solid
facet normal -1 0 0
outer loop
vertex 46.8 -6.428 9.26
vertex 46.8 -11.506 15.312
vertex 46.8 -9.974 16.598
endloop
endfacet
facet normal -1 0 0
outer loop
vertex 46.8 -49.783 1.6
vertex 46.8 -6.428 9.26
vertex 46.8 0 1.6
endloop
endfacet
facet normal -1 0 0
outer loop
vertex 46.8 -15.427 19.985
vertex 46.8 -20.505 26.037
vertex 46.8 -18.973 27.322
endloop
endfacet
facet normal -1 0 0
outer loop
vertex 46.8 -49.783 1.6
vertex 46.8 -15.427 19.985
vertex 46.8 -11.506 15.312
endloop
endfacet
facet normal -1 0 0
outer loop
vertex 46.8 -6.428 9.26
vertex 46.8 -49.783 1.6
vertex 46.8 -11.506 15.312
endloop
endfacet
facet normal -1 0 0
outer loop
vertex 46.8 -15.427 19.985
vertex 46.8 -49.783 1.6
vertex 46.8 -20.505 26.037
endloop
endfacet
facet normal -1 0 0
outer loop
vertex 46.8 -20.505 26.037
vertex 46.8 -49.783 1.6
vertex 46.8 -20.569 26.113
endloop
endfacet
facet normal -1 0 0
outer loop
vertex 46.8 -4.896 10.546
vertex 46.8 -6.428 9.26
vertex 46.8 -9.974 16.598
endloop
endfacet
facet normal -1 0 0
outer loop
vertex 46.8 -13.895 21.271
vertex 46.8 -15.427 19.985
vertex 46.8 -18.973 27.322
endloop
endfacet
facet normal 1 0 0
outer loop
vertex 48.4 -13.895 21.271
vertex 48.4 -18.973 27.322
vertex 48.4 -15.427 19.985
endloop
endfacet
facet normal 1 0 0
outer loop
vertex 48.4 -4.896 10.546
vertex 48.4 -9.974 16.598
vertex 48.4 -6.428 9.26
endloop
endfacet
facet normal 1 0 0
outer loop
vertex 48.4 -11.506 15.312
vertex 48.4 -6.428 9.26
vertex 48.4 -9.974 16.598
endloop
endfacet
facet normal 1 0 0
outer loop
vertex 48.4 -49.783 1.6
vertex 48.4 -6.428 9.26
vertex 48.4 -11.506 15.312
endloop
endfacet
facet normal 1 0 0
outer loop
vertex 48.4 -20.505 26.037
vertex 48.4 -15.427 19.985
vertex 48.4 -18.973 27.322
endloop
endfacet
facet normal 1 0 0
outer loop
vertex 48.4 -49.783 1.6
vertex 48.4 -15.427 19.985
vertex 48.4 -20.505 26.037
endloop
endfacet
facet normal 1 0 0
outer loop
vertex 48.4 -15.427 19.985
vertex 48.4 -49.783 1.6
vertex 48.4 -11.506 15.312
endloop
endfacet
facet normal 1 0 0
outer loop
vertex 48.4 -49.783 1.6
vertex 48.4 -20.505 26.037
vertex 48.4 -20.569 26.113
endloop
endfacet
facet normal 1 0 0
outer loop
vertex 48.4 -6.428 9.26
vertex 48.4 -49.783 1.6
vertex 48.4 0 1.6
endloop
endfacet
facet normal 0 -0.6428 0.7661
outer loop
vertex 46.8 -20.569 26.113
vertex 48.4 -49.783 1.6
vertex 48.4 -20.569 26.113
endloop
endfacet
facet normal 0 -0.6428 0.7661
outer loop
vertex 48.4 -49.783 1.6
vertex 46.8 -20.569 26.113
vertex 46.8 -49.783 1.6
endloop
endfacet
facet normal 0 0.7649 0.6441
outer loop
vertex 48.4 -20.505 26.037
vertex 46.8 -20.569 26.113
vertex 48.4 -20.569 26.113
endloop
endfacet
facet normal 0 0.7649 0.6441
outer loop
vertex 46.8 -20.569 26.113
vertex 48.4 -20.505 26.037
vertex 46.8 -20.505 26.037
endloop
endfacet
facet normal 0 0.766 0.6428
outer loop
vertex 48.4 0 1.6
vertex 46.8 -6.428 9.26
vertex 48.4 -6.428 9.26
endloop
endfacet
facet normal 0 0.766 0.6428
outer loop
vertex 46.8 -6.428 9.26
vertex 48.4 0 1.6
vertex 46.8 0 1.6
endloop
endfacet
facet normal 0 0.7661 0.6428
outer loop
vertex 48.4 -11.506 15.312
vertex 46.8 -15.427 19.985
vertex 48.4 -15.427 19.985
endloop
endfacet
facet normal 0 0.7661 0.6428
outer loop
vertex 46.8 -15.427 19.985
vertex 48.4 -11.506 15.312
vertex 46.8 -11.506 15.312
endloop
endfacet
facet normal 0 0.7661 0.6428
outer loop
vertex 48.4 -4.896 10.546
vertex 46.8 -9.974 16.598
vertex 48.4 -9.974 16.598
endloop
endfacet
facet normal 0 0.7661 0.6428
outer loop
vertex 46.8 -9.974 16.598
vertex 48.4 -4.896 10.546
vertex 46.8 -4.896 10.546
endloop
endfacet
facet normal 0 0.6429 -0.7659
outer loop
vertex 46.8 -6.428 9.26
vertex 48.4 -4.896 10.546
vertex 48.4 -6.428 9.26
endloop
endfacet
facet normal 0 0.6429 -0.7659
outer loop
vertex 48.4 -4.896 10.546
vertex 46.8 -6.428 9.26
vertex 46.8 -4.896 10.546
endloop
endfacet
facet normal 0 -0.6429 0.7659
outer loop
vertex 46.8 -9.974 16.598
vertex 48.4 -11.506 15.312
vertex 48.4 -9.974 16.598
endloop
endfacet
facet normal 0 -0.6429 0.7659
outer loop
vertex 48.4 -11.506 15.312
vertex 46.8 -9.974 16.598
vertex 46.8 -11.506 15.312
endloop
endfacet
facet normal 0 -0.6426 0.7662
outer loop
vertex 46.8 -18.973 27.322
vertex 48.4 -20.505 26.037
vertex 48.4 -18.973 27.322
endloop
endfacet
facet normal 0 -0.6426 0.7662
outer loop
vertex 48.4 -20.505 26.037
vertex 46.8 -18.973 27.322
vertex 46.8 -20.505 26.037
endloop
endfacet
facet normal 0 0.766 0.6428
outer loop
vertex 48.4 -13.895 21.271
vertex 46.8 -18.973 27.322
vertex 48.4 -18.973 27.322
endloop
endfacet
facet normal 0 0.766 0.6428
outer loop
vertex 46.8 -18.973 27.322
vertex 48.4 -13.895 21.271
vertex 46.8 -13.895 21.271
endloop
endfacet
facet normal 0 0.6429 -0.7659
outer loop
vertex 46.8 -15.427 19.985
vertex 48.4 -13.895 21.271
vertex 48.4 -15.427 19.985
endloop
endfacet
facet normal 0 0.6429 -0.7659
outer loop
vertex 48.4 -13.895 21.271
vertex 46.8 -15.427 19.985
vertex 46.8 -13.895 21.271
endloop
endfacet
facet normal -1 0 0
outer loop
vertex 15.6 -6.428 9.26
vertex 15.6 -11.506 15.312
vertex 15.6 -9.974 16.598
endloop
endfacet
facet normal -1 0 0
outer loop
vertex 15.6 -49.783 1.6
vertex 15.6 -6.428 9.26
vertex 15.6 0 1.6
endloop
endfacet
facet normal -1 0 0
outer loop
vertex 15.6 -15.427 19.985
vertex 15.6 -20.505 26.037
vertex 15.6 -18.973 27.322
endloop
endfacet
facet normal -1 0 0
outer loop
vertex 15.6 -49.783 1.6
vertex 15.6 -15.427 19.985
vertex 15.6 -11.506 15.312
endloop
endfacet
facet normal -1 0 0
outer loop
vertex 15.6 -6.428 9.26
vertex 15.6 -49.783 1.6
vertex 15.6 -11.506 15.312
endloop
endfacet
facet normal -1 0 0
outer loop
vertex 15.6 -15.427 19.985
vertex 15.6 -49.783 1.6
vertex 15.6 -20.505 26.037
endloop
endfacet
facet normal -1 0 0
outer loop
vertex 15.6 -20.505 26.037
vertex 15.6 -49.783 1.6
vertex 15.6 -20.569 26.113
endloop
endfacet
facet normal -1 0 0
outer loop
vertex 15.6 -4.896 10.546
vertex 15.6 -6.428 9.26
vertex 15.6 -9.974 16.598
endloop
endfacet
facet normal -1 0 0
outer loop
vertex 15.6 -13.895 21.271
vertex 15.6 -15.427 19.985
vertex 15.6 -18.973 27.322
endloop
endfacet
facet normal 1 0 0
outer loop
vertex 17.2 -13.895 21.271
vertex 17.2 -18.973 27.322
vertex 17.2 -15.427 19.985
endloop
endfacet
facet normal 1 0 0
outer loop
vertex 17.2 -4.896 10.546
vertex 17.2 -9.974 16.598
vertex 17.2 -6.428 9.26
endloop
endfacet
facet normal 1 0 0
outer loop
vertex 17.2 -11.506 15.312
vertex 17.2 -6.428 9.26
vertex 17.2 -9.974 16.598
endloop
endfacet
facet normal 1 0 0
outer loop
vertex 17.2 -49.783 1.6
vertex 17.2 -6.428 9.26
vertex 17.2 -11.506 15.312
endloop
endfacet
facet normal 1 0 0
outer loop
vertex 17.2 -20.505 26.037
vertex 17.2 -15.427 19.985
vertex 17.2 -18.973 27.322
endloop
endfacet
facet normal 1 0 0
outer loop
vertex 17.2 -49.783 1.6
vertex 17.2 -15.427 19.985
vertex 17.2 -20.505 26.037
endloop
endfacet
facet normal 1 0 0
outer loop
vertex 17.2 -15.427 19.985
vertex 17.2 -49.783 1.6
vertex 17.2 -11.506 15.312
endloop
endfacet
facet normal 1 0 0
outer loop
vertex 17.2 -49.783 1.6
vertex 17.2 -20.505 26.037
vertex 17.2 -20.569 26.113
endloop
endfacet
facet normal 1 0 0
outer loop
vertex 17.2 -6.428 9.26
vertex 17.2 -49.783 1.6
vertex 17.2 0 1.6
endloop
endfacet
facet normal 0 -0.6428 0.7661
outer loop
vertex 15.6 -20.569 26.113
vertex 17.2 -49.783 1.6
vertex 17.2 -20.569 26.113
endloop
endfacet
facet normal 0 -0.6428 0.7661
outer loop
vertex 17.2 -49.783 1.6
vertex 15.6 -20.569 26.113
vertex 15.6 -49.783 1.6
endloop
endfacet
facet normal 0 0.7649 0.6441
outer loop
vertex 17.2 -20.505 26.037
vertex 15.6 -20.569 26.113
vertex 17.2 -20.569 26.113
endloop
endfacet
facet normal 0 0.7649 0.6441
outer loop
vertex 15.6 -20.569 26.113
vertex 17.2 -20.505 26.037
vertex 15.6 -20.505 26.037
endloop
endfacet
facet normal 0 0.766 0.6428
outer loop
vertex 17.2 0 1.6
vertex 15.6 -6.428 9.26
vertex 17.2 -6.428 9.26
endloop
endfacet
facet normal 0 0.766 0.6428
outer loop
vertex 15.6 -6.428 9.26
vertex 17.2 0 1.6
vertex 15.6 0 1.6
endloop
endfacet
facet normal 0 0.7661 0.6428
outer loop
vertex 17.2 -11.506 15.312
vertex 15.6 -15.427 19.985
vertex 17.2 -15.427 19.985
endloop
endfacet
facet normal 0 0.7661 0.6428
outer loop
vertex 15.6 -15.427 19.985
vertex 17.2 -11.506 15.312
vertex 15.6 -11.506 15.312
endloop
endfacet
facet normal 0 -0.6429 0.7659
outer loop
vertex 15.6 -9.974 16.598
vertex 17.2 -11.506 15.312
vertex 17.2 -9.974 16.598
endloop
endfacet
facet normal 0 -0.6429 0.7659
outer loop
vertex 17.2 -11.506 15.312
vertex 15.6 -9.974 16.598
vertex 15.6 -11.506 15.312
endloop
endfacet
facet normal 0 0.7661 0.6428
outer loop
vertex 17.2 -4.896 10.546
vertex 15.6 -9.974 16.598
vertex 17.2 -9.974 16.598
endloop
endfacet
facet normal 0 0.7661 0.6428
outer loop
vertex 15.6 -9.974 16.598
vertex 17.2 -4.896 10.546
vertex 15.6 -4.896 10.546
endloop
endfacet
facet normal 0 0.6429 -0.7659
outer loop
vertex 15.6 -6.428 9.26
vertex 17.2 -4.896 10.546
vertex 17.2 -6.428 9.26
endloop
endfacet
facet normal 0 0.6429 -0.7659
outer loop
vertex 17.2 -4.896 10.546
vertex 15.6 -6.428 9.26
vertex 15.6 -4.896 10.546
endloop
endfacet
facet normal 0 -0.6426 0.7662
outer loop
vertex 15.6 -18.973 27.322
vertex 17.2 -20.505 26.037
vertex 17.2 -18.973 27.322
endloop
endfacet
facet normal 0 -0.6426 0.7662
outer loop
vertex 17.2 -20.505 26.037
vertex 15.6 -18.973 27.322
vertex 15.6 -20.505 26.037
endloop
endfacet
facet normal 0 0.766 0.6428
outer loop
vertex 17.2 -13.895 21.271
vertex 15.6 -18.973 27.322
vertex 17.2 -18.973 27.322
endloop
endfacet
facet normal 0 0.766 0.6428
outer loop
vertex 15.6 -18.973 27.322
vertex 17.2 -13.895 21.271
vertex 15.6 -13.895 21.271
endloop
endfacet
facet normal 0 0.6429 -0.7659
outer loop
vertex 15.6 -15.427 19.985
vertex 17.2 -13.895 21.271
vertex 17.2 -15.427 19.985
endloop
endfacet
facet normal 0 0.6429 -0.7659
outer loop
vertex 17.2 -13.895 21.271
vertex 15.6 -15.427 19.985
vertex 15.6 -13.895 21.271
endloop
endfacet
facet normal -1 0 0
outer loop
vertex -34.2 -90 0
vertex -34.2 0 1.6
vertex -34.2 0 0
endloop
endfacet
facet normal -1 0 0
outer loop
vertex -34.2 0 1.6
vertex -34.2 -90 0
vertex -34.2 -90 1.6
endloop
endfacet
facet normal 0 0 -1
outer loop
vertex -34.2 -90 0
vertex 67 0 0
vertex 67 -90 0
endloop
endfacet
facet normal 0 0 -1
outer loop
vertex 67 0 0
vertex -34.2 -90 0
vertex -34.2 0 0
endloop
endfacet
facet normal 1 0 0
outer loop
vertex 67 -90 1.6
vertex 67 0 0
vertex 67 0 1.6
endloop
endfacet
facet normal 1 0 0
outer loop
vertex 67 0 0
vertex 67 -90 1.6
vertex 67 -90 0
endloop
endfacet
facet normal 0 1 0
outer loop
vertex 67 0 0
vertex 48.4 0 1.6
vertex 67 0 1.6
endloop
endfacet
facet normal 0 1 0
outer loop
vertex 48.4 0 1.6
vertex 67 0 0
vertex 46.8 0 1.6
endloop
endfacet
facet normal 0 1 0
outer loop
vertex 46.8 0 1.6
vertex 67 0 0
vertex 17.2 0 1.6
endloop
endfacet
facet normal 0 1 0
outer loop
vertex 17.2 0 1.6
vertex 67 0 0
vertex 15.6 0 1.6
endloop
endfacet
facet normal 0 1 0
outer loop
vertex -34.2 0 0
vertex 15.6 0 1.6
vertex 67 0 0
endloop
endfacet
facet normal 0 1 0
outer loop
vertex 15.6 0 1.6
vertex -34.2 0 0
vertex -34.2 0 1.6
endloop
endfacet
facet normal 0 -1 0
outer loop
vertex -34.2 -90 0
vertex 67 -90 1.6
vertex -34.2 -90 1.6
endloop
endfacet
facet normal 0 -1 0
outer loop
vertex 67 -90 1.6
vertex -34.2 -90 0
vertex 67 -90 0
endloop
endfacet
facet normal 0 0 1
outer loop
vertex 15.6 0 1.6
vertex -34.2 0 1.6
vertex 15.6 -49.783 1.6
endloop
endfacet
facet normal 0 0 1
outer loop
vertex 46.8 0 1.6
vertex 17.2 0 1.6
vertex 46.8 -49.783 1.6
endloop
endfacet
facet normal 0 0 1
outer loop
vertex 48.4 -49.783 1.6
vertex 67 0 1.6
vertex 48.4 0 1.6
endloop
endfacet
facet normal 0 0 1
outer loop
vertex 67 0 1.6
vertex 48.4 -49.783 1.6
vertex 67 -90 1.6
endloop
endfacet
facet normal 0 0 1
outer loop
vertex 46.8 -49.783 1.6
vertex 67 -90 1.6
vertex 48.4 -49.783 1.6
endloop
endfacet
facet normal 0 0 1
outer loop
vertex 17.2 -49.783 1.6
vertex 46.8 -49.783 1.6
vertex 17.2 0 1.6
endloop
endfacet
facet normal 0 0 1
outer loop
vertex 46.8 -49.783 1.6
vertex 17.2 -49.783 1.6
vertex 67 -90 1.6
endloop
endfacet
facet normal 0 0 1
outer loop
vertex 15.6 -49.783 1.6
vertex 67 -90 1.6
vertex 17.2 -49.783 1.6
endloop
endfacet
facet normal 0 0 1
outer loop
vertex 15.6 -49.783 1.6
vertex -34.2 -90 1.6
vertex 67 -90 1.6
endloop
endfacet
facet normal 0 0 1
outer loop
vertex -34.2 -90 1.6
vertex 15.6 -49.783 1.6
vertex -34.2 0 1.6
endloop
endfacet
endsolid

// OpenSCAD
translate([0,0,1.6]) rotate([130,0,0]) {
    rotate([50,0,0]) translate([-34.2,0,0]) cube([101.2,90,1.6]);



    translate([62.4-15.6,0,0]) {
        translate([0,10,-2]) cube([1.6,7.9,5]);
        translate([0,24,-2]) cube([1.6,7.9,5]);
        intersection() {
            cube([1.6, 32, 80]);
            rotate([-40,0,0]) cube([1.6, 32, 80]);
        }
    }

    translate([15.6,0,0]) {
        translate([0,10,-2]) cube([1.6,7.9,5]);
        translate([0,24,-2]) cube([1.6,7.9,5]);
        intersection() {
            cube([1.6, 32, 80]);
            rotate([-40,0,0]) cube([1.6, 32, 80]);
        }
    }
}
